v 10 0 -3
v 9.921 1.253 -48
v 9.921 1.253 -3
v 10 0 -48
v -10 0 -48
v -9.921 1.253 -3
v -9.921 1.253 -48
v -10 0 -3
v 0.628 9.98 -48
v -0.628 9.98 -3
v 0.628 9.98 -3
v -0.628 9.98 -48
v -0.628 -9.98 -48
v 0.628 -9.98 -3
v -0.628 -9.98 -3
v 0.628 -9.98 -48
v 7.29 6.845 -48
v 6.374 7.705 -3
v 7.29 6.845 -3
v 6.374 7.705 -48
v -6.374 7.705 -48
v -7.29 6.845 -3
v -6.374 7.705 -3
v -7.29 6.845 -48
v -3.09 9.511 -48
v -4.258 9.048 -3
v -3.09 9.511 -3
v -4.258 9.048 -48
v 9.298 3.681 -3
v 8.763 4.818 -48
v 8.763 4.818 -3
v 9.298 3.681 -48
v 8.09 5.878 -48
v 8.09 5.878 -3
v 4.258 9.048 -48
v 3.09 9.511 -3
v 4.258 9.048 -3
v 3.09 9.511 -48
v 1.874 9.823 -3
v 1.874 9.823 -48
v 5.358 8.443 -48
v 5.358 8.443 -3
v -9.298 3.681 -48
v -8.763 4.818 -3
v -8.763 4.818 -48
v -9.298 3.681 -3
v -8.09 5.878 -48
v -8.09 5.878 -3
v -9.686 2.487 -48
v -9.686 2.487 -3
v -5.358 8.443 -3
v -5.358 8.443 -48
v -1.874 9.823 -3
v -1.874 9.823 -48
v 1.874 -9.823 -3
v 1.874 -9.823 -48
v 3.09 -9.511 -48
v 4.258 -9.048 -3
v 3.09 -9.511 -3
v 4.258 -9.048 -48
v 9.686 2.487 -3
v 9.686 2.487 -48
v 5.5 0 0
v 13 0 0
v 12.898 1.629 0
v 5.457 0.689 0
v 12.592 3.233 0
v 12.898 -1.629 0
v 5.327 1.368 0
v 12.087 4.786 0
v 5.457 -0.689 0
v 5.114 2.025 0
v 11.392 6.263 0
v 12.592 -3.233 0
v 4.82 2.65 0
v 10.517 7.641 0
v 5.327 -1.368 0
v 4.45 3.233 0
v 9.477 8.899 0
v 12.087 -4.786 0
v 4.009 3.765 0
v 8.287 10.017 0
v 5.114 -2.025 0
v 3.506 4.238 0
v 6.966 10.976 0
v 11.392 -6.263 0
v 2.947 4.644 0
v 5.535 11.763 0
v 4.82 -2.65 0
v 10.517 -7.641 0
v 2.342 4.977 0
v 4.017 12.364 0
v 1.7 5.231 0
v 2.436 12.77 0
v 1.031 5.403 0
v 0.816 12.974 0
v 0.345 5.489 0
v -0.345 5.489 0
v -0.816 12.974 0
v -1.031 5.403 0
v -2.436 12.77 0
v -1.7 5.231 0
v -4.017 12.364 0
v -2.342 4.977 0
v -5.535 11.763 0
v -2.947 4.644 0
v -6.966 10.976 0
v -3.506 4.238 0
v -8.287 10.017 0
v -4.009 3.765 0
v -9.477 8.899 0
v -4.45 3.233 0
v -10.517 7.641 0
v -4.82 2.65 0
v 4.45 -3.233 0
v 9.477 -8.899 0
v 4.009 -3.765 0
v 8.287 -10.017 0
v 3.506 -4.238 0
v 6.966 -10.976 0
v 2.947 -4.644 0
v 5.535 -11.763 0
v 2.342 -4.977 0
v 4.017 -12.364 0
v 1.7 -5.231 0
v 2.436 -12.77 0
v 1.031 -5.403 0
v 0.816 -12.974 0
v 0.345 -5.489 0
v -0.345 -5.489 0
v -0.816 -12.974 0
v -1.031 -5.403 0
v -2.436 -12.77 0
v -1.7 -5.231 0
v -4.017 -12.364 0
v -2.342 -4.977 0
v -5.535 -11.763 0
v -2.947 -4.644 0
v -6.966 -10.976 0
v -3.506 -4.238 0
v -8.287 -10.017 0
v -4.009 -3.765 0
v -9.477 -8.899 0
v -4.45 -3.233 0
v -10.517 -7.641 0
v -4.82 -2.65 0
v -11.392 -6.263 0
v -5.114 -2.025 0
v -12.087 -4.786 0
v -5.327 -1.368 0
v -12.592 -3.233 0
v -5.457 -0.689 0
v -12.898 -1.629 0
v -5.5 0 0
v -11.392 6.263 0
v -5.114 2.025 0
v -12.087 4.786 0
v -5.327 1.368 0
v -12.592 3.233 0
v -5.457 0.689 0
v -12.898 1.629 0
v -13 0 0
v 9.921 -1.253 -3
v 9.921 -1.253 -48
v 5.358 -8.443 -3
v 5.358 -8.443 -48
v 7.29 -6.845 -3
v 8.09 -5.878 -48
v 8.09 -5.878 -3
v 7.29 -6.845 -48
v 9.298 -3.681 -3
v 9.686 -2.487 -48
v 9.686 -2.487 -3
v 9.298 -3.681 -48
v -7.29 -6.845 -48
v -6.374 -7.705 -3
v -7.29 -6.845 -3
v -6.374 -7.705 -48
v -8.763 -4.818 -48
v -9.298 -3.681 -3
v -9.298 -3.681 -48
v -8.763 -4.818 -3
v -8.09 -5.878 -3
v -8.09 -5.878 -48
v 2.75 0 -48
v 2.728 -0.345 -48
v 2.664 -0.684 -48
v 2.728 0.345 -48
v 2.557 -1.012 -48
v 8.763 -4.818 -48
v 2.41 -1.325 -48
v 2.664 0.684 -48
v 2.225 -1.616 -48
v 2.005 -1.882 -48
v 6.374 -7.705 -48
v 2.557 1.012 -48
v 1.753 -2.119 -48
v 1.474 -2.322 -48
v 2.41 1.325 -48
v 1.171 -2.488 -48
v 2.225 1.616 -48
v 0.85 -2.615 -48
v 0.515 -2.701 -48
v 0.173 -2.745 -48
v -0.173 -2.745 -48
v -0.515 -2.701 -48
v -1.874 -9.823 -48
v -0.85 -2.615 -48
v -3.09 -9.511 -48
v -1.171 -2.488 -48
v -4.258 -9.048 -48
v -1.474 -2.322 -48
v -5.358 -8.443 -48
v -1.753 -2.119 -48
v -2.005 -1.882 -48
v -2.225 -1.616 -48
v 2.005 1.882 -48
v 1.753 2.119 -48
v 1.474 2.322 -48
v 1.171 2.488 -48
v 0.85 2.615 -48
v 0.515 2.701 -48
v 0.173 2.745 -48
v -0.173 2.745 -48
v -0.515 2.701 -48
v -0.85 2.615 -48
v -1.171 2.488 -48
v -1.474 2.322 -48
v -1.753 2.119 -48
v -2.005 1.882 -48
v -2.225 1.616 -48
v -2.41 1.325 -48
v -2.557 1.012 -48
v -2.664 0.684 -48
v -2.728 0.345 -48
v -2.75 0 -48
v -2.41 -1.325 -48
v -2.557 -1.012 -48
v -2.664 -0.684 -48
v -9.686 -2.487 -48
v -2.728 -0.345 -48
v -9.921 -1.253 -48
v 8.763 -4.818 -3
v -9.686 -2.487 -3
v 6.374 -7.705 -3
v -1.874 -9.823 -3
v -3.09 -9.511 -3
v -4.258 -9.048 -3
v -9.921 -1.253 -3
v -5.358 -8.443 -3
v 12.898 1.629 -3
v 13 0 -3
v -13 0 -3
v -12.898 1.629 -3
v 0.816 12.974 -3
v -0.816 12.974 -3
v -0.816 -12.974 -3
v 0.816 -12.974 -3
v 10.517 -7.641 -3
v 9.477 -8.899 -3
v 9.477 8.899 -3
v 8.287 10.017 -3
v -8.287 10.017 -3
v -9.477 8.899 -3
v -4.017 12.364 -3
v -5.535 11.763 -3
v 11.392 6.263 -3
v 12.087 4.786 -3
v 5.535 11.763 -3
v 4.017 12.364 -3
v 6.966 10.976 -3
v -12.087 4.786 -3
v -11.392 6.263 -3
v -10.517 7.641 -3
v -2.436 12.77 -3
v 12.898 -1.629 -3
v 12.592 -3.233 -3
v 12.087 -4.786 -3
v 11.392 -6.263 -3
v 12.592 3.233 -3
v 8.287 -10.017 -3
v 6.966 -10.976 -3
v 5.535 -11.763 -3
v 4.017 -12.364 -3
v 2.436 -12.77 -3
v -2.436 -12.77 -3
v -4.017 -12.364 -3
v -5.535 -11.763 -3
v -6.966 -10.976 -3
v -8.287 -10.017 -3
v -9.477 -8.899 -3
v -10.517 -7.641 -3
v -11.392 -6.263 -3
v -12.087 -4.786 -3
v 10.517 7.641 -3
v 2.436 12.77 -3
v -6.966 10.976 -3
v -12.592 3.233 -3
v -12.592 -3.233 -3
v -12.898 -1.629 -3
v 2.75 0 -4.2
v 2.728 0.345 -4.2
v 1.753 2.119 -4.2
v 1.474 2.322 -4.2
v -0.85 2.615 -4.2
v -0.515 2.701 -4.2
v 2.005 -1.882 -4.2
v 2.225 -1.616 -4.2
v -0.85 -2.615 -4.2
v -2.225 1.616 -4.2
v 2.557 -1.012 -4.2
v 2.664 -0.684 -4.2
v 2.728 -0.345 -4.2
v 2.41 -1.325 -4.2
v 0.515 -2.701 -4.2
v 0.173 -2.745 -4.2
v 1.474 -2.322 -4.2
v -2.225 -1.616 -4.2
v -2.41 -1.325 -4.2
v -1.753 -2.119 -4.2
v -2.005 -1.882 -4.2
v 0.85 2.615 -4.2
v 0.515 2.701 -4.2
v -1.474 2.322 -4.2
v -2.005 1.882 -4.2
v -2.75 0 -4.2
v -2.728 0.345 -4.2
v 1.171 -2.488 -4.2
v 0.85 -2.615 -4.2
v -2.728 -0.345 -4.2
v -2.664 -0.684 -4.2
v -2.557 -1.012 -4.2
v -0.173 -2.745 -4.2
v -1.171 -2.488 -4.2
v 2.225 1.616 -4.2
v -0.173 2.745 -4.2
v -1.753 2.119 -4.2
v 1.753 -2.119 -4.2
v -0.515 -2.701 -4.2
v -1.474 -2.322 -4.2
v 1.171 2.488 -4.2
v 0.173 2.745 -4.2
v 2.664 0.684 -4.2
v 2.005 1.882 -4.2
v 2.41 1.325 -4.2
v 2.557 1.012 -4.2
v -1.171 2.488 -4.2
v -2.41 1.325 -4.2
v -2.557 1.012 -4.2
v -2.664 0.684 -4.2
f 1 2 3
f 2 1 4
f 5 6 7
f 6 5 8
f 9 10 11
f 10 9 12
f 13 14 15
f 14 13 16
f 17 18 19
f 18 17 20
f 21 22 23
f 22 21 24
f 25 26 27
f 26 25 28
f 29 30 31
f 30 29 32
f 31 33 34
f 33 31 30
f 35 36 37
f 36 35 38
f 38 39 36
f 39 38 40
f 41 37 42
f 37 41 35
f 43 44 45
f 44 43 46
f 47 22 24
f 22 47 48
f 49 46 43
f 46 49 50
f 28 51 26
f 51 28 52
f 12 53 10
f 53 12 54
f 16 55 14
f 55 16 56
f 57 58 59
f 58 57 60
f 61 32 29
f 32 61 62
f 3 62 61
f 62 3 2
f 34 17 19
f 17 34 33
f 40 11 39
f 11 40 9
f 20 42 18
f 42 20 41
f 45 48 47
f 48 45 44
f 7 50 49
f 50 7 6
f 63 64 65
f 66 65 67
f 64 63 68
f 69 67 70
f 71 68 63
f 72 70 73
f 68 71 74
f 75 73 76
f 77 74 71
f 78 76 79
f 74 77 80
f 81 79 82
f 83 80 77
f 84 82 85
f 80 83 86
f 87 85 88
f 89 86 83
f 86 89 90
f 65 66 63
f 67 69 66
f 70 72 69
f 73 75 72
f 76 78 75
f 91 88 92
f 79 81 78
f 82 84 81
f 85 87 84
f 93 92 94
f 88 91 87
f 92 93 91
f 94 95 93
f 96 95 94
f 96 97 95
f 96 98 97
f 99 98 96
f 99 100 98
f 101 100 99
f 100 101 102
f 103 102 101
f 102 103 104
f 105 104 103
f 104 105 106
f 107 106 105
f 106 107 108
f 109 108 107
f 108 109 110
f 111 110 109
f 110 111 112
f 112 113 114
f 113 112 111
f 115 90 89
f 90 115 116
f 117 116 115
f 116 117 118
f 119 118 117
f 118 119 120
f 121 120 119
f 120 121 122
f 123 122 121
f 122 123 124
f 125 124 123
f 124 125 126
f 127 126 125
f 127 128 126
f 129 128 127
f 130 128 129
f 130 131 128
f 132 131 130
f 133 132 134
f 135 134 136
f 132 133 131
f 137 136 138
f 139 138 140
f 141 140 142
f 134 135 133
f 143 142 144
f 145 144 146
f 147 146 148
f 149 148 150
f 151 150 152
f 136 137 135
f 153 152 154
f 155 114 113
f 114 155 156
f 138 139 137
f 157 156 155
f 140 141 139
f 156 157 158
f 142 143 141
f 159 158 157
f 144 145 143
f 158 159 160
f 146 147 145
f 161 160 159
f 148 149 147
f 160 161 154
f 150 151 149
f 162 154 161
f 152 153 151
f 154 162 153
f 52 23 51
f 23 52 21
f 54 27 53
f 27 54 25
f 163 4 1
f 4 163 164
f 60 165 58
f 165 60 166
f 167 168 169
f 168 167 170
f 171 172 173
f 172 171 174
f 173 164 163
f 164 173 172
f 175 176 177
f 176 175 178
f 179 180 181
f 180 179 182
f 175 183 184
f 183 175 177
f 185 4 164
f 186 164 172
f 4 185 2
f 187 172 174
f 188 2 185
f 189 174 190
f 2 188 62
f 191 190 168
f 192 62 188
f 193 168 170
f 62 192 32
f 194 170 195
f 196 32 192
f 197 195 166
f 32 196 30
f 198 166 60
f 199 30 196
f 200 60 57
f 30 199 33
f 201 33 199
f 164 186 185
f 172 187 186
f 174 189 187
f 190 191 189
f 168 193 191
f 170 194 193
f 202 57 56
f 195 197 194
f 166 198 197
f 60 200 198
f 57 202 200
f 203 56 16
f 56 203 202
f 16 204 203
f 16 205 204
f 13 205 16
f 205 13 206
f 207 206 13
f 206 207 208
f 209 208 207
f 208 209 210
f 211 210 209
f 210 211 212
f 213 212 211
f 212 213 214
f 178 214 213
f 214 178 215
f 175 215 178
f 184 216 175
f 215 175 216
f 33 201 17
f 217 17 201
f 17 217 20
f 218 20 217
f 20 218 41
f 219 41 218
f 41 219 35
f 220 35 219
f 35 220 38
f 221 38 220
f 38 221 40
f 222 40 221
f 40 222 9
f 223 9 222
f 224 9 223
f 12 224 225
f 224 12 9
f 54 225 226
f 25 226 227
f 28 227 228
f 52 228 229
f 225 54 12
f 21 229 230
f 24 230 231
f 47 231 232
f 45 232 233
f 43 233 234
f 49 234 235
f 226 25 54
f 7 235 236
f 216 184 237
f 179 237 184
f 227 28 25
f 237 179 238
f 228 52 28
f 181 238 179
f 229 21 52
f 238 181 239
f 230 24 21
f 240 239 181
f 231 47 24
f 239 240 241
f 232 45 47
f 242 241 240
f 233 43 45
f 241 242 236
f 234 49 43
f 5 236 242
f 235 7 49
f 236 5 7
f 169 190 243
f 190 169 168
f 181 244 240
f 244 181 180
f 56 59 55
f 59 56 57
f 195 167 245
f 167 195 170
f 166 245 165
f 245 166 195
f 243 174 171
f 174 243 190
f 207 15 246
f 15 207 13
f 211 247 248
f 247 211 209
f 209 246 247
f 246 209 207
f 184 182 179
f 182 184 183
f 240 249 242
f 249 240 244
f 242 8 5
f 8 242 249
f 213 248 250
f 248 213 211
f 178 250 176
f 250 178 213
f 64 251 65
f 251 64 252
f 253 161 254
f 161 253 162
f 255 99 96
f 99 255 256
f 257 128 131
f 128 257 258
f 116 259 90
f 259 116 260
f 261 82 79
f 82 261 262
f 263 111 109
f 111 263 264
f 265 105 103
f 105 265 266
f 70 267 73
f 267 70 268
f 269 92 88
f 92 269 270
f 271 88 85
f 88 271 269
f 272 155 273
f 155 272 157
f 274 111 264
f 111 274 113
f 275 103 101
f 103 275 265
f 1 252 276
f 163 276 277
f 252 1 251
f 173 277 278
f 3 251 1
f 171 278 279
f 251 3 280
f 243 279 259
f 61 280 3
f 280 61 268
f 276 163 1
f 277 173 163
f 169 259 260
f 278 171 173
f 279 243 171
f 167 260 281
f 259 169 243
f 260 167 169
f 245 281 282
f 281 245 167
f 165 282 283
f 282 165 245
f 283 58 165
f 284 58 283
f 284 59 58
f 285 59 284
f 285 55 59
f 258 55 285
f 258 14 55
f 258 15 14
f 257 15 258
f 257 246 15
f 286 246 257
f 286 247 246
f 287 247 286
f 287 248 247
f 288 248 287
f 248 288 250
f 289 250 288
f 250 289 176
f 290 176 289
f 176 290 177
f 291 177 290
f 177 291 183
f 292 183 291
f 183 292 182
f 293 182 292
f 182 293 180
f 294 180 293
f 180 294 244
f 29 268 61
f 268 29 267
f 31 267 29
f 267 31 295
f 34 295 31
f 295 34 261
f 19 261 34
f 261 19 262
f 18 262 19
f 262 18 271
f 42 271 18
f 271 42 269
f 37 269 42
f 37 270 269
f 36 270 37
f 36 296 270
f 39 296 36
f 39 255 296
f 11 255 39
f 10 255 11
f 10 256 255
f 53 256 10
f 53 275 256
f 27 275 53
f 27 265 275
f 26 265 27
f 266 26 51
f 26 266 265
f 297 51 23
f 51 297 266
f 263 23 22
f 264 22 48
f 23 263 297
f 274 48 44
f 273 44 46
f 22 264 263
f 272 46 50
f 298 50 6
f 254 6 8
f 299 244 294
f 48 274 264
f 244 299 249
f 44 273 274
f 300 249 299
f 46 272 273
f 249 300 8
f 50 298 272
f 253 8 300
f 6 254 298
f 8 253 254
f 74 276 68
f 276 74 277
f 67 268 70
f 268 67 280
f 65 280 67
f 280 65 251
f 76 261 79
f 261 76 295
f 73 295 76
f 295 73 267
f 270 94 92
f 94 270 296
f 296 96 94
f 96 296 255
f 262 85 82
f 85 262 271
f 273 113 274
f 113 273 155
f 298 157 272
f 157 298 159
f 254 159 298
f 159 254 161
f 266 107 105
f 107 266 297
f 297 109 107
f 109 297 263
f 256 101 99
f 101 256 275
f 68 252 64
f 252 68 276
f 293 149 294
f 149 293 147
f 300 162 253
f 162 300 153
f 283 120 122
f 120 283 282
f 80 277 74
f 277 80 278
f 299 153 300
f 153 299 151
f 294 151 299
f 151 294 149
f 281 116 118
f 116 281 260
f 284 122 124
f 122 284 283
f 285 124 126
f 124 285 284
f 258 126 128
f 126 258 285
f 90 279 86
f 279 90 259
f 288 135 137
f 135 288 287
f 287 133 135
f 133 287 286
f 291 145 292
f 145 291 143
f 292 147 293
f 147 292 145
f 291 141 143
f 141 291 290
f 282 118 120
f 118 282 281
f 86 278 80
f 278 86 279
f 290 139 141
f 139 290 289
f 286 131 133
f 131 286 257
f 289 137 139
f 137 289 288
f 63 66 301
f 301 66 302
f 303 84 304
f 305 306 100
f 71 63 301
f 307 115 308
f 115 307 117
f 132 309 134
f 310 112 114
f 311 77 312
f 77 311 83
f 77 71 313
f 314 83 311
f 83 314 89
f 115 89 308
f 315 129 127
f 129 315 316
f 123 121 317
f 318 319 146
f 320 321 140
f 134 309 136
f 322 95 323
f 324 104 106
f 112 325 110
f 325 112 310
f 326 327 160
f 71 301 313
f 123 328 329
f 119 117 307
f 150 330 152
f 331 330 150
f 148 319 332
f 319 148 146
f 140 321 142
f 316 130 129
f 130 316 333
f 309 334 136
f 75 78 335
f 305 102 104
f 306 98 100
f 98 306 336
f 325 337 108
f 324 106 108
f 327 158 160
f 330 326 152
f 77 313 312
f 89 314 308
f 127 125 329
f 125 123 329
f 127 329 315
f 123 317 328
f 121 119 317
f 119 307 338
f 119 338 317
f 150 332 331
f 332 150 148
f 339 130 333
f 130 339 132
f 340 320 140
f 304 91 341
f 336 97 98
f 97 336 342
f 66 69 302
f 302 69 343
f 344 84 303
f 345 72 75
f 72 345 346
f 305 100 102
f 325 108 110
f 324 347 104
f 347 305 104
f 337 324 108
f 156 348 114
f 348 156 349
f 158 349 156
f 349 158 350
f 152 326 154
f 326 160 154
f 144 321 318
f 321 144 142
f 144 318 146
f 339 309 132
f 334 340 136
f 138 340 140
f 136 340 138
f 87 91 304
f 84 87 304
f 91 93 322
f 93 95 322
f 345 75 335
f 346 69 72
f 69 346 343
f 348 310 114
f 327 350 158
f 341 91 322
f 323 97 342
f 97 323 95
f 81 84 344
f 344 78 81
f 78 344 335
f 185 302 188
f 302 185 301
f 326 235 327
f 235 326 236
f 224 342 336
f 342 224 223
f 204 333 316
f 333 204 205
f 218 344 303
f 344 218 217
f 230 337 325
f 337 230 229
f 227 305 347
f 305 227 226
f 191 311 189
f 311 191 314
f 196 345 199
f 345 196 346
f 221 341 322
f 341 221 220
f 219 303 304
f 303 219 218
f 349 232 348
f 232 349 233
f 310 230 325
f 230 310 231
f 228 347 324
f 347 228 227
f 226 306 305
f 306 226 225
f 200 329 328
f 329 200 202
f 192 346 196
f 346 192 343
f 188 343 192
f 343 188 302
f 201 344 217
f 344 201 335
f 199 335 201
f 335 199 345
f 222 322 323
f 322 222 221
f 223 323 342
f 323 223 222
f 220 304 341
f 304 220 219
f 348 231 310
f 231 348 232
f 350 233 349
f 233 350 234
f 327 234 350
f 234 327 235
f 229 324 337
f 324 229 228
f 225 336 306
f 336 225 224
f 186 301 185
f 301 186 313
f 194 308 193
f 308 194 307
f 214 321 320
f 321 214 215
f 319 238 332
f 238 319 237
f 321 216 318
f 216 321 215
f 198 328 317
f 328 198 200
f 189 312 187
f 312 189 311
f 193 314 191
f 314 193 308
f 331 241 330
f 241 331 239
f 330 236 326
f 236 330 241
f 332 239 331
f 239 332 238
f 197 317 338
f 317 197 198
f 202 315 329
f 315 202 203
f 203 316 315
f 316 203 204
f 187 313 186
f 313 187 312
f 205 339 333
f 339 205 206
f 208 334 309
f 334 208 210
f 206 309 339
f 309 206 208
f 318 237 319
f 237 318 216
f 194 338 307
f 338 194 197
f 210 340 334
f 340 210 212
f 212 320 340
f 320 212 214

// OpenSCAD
$fn = 50;


difference() {
	union() {
		translate(v = [0, 0, -48.0000000000]) {
			cylinder(h = 48, r = 10.0000000000);
		}
		translate(v = [0, 0, -3.0000000000]) {
			cylinder(h = 3, r = 13.0000000000);
		}
	}
	union() {
		translate(v = [0, 0, 0]) {
			rotate(a = [0, 0, 0]) {
				difference() {
					union() {
						#translate(v = [0, 0, -48.0000000000]) {
							cylinder(h = 48, r = 2.2500000000);
						}
						#translate(v = [0, 0, -4.2000000000]) {
							cylinder(h = 4.2000000000, r = 10.0000000000, r1 = 2.7500000000, r2 = 5.5000000000);
						}
						#translate(v = [0, 0, -48.0000000000]) {
							cylinder(h = 48, r = 2.7500000000);
						}
						#translate(v = [0, 0, -48.0000000000]) {
							cylinder(h = 48, r = 2.2500000000);
						}
					}
					union();
				}
			}
		}
	}
}
